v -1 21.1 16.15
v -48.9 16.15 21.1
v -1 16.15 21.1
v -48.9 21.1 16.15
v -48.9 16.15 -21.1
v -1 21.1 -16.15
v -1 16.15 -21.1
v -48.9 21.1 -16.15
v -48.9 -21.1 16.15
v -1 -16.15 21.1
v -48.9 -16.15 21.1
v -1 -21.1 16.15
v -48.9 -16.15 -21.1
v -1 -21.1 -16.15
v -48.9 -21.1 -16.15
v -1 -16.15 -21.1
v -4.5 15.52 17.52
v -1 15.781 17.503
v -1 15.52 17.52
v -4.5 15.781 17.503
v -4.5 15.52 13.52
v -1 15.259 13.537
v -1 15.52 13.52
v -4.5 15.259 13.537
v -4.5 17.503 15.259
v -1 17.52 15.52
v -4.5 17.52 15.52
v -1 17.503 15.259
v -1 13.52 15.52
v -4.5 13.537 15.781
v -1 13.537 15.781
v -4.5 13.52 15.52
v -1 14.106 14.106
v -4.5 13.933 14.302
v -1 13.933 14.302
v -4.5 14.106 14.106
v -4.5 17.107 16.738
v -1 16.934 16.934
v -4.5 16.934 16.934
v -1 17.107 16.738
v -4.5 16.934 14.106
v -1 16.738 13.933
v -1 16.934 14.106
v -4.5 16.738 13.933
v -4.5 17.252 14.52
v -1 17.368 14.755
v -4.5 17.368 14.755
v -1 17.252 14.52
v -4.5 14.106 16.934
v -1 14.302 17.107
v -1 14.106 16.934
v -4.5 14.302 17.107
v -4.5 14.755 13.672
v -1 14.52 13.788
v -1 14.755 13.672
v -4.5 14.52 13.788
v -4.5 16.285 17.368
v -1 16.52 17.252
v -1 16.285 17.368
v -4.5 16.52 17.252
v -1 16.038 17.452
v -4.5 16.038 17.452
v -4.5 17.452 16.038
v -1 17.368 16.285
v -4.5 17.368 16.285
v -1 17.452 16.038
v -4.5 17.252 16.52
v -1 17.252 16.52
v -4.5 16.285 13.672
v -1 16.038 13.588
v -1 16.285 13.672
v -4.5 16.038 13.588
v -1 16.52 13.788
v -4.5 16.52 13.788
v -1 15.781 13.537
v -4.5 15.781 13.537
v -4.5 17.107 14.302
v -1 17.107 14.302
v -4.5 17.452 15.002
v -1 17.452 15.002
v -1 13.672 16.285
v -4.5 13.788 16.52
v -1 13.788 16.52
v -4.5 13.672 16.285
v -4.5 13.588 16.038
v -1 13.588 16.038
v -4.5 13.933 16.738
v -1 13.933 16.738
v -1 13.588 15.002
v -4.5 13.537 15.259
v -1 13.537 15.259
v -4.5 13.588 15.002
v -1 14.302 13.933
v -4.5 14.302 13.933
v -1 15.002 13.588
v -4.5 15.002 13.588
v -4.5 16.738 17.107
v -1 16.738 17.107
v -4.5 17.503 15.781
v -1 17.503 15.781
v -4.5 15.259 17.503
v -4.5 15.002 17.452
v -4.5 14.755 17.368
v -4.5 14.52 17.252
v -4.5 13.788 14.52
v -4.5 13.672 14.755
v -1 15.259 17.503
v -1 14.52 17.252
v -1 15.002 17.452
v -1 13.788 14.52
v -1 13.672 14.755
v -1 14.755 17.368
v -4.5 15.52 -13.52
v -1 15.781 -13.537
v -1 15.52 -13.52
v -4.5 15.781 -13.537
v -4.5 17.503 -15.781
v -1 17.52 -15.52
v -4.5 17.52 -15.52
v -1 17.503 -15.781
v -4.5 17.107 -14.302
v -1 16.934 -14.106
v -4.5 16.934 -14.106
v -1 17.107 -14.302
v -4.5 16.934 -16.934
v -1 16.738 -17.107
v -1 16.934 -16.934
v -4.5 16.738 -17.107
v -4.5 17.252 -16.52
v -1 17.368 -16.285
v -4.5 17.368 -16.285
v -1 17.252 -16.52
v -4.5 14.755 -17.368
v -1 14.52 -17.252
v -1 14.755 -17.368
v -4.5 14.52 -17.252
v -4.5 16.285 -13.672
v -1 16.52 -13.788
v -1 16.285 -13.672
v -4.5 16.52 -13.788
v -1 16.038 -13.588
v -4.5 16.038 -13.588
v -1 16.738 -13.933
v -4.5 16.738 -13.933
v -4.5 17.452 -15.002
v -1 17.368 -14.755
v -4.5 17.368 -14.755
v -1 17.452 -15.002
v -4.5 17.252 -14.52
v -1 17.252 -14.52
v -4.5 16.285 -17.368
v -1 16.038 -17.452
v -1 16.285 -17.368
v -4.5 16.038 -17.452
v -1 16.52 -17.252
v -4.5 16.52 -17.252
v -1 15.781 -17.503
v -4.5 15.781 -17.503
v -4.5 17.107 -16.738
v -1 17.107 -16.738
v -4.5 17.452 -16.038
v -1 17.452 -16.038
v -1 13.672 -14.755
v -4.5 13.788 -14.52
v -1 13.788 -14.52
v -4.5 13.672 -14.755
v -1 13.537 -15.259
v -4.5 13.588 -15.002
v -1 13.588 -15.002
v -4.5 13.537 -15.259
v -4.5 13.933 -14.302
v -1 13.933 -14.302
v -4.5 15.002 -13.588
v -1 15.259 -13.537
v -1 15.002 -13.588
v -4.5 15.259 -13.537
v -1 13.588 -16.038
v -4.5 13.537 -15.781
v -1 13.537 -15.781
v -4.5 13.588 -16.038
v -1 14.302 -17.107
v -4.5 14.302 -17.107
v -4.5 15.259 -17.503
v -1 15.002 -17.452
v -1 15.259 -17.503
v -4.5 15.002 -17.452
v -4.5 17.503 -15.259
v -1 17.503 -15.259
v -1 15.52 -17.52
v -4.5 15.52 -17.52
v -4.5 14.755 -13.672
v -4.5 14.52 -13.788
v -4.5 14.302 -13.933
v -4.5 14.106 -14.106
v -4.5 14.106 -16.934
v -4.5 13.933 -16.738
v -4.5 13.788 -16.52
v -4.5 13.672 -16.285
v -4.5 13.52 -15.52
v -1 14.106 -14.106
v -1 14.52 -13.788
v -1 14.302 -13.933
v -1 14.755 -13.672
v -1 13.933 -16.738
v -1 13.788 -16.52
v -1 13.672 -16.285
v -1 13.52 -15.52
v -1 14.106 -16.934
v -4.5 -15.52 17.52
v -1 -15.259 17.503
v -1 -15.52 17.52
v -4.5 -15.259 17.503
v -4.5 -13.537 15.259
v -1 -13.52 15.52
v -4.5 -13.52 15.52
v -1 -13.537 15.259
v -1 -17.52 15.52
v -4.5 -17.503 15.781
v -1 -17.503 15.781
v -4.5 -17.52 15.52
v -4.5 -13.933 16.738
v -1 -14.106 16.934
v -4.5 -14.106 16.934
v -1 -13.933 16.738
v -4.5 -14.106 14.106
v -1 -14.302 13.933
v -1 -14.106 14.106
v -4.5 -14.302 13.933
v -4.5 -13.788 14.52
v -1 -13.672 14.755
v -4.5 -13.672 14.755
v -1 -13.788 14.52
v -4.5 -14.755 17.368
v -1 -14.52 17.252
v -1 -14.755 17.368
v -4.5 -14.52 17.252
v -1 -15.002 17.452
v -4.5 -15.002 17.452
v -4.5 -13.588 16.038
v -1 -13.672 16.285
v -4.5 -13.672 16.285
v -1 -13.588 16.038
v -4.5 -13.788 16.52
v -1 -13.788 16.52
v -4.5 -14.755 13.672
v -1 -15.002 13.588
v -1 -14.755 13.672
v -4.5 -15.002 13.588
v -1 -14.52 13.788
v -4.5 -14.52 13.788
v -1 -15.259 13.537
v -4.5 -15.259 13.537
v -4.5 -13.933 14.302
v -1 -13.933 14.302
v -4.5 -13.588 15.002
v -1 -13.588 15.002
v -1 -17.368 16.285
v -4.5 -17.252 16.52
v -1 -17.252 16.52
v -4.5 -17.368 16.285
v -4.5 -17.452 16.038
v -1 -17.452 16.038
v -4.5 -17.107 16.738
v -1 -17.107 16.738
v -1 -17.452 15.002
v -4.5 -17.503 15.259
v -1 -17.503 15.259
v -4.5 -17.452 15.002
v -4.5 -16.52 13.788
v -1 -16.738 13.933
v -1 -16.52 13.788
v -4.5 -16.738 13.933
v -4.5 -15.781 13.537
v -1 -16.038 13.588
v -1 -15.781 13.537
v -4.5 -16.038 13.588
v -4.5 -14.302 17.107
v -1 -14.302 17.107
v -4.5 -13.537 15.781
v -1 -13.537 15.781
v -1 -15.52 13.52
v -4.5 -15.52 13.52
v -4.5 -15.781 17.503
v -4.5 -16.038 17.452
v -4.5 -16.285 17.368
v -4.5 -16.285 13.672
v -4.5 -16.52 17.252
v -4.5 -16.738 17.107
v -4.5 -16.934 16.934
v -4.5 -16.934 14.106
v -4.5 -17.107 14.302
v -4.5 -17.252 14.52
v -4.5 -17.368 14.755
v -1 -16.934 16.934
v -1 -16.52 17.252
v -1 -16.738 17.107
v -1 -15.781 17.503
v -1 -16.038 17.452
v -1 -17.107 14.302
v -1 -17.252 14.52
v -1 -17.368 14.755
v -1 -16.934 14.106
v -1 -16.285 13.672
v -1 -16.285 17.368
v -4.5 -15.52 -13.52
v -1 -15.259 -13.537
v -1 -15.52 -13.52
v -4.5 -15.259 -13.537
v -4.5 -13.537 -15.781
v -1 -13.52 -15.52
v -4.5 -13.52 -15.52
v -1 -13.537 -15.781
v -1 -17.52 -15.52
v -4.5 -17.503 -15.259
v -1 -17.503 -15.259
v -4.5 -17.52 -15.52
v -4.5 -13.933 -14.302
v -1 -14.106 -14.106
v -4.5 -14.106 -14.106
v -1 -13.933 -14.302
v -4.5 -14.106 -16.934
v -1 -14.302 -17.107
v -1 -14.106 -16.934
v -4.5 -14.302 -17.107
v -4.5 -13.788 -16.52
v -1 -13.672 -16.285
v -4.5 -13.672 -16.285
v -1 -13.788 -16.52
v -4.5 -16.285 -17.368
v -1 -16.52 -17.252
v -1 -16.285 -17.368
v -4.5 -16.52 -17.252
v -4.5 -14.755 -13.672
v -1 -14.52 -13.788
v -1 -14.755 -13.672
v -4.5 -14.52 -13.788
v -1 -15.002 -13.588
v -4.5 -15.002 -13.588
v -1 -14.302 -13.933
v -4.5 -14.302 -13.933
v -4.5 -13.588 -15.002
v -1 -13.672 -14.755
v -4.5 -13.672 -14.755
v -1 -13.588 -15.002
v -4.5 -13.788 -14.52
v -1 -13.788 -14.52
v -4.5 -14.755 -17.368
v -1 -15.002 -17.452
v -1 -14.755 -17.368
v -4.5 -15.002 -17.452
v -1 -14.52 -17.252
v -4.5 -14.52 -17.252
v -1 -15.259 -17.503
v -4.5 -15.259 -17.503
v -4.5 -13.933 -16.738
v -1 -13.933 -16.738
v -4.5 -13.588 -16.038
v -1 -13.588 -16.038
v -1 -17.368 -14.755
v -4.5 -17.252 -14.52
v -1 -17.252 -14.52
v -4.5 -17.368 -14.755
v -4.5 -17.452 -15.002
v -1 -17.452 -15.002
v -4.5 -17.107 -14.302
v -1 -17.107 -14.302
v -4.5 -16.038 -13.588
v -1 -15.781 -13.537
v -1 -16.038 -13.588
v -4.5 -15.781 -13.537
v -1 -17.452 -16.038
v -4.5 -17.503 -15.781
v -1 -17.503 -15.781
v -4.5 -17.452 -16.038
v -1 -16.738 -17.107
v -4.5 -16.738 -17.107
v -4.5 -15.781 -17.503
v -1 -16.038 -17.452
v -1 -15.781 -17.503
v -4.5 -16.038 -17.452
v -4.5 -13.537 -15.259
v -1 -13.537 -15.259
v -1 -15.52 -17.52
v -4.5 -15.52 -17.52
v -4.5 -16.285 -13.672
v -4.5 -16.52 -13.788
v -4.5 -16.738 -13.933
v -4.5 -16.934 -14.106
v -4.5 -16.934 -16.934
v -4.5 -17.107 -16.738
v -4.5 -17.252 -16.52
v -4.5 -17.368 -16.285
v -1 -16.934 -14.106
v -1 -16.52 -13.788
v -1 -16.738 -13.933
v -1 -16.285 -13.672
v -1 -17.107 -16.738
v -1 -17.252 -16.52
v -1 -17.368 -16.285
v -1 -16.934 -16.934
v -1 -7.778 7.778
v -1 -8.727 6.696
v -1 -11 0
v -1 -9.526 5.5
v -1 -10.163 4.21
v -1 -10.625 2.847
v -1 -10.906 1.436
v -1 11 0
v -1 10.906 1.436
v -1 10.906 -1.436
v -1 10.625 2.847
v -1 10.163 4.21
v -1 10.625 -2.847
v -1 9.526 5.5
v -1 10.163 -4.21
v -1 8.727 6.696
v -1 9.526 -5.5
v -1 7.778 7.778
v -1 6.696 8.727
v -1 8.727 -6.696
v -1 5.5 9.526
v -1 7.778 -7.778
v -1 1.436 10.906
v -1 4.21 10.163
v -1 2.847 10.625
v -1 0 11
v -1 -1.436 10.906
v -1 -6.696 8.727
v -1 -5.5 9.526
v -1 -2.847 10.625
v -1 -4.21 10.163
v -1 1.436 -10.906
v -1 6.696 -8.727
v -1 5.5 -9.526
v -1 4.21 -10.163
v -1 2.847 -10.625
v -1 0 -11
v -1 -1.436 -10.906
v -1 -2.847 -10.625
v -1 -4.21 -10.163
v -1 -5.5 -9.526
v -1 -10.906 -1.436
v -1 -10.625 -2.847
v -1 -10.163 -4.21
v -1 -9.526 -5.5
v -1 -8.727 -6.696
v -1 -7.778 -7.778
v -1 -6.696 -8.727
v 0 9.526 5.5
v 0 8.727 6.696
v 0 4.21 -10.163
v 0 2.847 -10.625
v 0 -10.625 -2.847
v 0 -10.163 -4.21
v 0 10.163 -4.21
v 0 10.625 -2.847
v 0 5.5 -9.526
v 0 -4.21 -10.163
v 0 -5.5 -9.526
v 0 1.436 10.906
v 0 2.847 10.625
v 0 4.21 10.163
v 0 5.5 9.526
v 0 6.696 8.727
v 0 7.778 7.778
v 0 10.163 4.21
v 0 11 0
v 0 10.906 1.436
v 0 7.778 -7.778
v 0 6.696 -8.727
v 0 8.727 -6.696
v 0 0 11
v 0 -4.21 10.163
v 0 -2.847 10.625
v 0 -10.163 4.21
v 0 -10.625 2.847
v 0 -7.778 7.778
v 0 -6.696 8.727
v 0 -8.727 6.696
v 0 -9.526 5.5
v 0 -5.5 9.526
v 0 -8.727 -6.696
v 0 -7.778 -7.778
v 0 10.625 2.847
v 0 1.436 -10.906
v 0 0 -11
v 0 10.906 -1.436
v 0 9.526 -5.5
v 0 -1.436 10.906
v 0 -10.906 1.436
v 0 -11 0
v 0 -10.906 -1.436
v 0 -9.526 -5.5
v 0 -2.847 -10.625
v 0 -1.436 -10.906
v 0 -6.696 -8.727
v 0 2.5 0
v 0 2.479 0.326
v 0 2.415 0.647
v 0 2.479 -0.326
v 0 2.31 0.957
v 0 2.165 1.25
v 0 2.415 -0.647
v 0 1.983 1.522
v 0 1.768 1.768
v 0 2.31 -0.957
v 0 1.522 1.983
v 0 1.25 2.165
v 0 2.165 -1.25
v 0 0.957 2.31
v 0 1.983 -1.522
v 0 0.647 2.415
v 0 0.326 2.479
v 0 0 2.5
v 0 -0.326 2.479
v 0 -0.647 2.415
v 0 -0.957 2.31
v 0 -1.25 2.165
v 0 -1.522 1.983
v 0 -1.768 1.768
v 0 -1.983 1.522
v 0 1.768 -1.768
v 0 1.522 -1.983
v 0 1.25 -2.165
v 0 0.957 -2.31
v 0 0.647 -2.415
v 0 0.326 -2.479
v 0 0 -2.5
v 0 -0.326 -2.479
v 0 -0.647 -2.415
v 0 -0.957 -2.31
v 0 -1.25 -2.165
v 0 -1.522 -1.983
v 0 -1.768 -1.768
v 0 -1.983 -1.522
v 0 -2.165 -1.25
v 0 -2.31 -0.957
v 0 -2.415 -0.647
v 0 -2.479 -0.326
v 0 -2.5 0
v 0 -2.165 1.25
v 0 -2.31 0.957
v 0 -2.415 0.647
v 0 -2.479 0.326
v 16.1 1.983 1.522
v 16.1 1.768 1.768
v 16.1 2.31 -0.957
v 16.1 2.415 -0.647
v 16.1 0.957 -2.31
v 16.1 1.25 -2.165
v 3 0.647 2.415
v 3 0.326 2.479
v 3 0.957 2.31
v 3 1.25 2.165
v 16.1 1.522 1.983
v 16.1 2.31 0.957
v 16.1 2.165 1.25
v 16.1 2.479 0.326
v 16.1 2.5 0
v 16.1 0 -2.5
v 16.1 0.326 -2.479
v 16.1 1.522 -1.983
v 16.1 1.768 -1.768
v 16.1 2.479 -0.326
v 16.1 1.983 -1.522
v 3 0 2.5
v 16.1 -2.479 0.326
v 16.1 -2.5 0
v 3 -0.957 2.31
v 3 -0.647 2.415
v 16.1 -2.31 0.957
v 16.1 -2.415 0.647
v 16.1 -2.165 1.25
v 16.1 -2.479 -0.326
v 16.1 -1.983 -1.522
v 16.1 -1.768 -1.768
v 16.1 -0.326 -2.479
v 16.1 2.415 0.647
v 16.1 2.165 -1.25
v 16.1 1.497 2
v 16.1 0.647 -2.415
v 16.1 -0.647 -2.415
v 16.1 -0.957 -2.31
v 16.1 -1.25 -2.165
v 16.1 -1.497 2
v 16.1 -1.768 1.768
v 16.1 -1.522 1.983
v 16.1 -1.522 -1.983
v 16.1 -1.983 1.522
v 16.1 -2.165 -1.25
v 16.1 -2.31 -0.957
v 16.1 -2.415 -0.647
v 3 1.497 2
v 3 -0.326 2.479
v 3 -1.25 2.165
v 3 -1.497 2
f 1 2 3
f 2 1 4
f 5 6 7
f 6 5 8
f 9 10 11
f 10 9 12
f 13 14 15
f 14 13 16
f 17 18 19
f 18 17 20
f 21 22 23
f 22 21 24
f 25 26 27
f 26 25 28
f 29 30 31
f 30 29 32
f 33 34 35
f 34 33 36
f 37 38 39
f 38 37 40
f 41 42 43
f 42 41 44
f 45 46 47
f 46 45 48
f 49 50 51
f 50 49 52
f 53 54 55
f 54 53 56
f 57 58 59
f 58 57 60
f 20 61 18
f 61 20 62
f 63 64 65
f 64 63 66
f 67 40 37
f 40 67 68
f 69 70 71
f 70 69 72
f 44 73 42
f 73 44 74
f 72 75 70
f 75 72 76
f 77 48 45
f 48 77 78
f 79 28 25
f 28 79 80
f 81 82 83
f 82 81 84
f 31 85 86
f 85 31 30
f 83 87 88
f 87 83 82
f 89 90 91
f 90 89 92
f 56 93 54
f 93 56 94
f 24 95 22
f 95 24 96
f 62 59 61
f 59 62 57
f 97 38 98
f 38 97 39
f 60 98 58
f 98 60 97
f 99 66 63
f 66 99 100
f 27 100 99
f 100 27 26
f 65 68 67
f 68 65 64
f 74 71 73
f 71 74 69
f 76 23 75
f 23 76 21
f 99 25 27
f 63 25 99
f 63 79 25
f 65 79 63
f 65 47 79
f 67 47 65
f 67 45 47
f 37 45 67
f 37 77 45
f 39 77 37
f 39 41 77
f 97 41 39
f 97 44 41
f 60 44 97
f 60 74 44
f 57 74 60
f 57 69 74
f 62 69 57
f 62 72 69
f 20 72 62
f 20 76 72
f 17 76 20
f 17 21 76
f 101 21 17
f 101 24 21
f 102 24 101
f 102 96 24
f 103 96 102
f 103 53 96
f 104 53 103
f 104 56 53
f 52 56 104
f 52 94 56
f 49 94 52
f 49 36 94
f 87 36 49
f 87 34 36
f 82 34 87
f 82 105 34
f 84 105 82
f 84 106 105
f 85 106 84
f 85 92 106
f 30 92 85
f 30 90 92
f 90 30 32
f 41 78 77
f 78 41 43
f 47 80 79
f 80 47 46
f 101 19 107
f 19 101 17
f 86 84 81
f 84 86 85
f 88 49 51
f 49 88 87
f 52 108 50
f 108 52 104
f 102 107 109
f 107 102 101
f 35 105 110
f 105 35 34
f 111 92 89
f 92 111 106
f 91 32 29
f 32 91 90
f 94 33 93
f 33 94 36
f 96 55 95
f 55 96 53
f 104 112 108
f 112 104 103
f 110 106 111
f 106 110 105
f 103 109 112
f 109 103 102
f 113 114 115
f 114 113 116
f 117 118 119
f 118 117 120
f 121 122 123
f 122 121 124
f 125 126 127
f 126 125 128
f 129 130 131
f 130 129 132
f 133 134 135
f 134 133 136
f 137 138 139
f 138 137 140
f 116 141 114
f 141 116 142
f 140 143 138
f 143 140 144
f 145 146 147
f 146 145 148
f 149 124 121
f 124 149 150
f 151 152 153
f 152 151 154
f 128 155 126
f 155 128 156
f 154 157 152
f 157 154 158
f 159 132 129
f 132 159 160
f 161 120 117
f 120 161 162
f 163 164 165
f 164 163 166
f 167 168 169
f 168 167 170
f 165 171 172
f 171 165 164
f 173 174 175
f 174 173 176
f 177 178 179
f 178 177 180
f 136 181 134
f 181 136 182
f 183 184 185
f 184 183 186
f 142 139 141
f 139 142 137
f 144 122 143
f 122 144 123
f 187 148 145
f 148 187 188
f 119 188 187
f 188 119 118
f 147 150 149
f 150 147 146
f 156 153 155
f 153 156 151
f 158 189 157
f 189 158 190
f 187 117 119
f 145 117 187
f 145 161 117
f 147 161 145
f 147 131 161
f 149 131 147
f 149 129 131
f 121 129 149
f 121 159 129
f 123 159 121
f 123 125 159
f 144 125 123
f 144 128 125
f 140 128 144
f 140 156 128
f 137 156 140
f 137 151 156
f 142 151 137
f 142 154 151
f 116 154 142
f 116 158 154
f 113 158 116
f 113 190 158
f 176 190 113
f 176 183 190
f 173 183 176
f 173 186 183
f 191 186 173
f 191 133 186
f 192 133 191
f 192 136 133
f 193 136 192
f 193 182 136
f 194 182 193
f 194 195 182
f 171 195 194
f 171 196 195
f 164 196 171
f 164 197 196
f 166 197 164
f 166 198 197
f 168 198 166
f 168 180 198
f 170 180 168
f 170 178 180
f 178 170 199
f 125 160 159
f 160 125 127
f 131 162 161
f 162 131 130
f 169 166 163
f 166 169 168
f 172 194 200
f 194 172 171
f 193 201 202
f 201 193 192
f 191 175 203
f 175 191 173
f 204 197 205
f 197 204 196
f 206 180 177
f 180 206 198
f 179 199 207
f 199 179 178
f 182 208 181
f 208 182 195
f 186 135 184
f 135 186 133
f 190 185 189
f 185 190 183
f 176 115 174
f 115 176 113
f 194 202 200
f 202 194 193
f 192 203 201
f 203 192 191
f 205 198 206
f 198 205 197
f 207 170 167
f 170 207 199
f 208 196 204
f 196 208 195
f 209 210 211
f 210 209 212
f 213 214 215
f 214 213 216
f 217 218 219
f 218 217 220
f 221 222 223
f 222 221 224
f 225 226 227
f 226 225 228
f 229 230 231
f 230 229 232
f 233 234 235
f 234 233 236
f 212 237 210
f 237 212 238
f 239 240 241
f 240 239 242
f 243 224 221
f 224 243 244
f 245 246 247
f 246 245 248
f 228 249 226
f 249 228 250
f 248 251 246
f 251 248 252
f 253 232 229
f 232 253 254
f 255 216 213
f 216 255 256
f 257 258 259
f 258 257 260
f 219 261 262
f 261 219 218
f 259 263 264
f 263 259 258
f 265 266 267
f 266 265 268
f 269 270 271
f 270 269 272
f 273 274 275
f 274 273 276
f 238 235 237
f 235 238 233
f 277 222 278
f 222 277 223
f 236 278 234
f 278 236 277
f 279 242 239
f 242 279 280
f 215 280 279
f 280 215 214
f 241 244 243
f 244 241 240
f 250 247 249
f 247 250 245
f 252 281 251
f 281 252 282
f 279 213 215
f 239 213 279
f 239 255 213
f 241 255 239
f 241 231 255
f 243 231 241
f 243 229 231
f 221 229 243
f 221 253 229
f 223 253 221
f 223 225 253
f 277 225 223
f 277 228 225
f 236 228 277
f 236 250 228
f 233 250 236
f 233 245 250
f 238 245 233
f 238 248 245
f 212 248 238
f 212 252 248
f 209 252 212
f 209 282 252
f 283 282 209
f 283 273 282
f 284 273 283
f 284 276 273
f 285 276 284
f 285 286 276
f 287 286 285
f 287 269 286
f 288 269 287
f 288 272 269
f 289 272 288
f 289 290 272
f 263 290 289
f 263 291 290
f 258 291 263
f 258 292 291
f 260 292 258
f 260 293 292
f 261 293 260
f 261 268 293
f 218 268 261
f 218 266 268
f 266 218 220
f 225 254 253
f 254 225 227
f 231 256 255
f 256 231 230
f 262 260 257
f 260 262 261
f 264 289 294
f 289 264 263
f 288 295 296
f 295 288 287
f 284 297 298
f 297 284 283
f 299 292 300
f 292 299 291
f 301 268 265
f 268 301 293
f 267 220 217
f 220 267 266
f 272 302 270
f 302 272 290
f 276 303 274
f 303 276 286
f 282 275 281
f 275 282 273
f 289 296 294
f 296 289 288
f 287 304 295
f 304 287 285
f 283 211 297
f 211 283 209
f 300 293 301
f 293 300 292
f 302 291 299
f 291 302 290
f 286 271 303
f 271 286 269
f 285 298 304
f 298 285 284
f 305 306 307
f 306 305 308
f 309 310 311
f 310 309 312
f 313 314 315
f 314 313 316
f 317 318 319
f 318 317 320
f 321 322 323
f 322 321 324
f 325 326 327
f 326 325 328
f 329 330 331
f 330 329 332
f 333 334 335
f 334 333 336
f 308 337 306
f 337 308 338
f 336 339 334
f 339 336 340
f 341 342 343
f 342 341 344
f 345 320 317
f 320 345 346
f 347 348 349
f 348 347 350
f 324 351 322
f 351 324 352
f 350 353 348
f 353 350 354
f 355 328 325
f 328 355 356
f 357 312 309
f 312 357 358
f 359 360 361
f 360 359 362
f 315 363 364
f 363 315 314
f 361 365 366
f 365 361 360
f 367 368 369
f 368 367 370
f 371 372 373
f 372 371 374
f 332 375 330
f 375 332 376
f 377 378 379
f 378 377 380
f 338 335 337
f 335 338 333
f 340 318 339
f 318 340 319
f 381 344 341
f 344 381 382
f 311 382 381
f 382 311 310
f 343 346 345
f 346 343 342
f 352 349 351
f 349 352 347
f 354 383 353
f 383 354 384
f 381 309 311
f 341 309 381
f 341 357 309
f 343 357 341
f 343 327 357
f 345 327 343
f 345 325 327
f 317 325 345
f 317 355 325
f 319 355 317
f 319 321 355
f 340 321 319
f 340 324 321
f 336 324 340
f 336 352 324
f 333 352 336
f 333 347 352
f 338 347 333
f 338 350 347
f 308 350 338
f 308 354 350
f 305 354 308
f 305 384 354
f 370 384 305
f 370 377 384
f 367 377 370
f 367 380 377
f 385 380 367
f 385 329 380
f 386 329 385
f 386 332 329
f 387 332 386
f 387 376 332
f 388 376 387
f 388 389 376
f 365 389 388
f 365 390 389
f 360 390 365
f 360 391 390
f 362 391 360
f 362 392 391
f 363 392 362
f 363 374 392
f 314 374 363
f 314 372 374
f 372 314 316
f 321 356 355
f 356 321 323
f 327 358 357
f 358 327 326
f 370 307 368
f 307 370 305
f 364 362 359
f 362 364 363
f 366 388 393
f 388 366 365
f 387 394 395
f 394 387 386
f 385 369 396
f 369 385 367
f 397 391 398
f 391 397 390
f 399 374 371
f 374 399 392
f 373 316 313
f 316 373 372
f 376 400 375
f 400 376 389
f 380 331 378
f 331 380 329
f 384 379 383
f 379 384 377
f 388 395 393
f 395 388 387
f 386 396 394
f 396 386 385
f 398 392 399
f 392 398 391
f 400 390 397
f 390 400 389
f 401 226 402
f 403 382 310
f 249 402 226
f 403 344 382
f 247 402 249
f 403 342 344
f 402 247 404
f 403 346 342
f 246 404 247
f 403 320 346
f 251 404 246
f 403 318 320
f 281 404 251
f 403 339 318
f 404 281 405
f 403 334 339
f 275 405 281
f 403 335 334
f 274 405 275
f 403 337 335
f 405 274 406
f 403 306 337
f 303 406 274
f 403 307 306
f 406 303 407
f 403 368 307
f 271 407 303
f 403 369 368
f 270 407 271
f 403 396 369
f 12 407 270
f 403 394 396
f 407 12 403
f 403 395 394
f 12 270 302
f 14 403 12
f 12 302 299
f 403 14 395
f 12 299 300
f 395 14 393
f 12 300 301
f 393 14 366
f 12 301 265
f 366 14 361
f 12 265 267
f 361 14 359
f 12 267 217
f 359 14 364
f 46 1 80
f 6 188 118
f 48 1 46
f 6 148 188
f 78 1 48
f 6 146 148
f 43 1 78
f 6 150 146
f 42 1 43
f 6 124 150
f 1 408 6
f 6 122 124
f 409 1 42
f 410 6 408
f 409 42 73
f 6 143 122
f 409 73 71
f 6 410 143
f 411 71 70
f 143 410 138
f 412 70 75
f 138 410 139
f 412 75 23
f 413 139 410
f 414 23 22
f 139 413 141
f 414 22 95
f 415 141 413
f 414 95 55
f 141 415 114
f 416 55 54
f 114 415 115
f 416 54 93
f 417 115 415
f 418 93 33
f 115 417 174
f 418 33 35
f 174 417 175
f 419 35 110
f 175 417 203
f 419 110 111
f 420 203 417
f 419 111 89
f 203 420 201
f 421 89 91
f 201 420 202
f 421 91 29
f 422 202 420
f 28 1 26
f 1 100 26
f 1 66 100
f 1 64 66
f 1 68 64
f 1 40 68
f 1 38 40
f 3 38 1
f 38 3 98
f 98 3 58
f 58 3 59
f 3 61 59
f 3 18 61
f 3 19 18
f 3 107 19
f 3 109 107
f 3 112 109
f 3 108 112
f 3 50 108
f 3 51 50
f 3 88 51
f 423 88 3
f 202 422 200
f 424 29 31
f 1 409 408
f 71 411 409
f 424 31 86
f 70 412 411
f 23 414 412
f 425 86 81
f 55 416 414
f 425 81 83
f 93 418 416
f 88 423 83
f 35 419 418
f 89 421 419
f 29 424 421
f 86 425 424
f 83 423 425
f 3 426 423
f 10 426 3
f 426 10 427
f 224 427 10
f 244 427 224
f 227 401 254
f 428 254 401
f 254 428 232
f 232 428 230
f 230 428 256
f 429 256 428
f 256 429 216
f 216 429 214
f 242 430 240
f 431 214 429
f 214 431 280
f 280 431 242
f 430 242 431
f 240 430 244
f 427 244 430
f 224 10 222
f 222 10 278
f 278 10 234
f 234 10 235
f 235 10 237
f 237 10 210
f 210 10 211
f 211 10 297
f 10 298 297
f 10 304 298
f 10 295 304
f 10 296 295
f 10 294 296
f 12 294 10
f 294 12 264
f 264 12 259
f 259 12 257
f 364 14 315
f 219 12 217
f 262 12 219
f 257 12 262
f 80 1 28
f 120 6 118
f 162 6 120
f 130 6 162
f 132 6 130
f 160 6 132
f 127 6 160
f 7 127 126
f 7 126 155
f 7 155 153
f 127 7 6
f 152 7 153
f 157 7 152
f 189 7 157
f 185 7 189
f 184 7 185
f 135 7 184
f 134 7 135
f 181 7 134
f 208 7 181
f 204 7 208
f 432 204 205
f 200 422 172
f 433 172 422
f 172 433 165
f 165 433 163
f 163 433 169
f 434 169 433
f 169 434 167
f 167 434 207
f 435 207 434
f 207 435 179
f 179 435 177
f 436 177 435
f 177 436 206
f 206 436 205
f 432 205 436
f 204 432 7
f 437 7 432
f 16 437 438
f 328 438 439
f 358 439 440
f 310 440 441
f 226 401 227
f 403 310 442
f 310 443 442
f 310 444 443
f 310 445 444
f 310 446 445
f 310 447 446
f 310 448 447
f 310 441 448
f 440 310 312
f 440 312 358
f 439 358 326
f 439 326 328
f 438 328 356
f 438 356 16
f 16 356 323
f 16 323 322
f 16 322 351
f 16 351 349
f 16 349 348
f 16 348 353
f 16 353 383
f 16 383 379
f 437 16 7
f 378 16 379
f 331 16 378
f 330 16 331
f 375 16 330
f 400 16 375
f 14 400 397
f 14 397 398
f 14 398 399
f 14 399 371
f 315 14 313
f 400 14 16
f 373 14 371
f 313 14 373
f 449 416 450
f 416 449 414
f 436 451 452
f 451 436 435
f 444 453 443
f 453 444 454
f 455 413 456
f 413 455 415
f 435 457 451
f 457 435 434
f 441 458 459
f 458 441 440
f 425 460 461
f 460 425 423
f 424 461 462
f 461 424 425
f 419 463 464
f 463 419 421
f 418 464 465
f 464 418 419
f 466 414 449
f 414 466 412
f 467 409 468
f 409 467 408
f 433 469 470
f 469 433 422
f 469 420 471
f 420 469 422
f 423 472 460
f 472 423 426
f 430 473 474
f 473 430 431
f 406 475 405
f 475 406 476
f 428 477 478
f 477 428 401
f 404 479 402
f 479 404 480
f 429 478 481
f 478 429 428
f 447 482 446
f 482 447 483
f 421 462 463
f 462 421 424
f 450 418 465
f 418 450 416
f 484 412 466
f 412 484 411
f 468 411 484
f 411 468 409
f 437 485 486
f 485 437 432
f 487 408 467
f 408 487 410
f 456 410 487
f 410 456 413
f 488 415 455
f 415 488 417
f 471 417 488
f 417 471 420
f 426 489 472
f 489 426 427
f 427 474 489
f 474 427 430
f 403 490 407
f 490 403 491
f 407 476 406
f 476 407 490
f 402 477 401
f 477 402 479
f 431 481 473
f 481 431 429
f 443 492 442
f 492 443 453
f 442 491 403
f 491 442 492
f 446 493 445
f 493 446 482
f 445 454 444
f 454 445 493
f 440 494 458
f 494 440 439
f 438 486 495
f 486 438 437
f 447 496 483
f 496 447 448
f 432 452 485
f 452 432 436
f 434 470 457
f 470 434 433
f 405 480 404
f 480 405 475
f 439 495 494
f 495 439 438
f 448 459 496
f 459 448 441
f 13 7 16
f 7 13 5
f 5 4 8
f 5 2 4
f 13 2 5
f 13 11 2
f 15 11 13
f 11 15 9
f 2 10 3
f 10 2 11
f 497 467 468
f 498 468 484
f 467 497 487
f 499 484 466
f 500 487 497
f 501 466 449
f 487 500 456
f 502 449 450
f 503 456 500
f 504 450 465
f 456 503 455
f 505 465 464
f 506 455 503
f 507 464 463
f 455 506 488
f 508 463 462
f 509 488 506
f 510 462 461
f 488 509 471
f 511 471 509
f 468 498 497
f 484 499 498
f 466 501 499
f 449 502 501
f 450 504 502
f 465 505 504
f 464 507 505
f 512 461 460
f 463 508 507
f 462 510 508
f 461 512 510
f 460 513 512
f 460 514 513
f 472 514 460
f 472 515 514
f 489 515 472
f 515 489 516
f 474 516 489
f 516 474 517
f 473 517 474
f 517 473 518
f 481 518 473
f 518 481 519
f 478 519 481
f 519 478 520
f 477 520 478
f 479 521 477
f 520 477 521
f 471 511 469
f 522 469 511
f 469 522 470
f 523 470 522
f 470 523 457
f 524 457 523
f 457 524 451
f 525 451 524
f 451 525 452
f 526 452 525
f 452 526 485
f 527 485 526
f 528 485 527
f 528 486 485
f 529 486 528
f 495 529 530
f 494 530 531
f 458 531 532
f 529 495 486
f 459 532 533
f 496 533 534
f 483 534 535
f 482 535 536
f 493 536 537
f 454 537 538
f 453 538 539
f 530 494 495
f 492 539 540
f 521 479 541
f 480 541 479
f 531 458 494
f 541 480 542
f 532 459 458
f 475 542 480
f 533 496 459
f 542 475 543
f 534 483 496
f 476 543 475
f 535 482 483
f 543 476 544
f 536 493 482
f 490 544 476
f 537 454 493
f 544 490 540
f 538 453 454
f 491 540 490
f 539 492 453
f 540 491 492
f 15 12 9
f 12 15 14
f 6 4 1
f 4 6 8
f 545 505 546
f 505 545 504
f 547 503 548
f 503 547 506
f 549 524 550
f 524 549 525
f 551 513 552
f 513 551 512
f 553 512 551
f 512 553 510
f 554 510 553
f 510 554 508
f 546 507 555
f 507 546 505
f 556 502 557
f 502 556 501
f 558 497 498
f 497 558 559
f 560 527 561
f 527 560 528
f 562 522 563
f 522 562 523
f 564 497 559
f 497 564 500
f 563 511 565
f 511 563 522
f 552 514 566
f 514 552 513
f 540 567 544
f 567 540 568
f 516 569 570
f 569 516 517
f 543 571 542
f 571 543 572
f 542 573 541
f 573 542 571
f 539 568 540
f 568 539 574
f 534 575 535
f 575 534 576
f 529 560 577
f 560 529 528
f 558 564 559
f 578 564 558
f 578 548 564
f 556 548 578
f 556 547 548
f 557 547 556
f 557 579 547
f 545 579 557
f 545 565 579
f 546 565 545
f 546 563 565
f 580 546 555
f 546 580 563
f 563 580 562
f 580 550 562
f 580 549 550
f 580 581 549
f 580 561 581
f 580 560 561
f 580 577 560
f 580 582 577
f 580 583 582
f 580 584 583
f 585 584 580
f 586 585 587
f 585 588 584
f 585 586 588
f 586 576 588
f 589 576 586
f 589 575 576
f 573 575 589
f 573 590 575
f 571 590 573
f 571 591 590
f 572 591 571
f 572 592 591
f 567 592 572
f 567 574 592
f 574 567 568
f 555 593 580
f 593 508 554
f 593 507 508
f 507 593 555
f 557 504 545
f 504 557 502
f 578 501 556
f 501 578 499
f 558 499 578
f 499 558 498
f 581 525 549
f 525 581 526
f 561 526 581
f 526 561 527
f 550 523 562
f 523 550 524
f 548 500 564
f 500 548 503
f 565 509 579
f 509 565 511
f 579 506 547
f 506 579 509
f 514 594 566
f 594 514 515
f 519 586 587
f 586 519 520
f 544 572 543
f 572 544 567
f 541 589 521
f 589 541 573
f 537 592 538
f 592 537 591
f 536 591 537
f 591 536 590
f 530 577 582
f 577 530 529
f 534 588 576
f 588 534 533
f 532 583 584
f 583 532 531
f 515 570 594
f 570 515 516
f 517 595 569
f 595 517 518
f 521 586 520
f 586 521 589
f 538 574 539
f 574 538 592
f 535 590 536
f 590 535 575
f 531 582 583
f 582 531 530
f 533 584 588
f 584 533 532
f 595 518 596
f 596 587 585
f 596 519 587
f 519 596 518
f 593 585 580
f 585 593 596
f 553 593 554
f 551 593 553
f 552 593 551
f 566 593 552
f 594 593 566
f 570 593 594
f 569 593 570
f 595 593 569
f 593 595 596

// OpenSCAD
/**********************************************************************************************************************
 **
 ** lib/MCAD/stepper_nema17_long.scad
 **
 ** This file renders a NEMA stepper motor of the dimensions specified by the file name.
 **
 **********************************************************************************************************************/

include <MCAD/stepper.scad>

$fn = 48;
rotate([0, -90, 0])
	motor(Nema17, NemaLong, dualAxis = false);
